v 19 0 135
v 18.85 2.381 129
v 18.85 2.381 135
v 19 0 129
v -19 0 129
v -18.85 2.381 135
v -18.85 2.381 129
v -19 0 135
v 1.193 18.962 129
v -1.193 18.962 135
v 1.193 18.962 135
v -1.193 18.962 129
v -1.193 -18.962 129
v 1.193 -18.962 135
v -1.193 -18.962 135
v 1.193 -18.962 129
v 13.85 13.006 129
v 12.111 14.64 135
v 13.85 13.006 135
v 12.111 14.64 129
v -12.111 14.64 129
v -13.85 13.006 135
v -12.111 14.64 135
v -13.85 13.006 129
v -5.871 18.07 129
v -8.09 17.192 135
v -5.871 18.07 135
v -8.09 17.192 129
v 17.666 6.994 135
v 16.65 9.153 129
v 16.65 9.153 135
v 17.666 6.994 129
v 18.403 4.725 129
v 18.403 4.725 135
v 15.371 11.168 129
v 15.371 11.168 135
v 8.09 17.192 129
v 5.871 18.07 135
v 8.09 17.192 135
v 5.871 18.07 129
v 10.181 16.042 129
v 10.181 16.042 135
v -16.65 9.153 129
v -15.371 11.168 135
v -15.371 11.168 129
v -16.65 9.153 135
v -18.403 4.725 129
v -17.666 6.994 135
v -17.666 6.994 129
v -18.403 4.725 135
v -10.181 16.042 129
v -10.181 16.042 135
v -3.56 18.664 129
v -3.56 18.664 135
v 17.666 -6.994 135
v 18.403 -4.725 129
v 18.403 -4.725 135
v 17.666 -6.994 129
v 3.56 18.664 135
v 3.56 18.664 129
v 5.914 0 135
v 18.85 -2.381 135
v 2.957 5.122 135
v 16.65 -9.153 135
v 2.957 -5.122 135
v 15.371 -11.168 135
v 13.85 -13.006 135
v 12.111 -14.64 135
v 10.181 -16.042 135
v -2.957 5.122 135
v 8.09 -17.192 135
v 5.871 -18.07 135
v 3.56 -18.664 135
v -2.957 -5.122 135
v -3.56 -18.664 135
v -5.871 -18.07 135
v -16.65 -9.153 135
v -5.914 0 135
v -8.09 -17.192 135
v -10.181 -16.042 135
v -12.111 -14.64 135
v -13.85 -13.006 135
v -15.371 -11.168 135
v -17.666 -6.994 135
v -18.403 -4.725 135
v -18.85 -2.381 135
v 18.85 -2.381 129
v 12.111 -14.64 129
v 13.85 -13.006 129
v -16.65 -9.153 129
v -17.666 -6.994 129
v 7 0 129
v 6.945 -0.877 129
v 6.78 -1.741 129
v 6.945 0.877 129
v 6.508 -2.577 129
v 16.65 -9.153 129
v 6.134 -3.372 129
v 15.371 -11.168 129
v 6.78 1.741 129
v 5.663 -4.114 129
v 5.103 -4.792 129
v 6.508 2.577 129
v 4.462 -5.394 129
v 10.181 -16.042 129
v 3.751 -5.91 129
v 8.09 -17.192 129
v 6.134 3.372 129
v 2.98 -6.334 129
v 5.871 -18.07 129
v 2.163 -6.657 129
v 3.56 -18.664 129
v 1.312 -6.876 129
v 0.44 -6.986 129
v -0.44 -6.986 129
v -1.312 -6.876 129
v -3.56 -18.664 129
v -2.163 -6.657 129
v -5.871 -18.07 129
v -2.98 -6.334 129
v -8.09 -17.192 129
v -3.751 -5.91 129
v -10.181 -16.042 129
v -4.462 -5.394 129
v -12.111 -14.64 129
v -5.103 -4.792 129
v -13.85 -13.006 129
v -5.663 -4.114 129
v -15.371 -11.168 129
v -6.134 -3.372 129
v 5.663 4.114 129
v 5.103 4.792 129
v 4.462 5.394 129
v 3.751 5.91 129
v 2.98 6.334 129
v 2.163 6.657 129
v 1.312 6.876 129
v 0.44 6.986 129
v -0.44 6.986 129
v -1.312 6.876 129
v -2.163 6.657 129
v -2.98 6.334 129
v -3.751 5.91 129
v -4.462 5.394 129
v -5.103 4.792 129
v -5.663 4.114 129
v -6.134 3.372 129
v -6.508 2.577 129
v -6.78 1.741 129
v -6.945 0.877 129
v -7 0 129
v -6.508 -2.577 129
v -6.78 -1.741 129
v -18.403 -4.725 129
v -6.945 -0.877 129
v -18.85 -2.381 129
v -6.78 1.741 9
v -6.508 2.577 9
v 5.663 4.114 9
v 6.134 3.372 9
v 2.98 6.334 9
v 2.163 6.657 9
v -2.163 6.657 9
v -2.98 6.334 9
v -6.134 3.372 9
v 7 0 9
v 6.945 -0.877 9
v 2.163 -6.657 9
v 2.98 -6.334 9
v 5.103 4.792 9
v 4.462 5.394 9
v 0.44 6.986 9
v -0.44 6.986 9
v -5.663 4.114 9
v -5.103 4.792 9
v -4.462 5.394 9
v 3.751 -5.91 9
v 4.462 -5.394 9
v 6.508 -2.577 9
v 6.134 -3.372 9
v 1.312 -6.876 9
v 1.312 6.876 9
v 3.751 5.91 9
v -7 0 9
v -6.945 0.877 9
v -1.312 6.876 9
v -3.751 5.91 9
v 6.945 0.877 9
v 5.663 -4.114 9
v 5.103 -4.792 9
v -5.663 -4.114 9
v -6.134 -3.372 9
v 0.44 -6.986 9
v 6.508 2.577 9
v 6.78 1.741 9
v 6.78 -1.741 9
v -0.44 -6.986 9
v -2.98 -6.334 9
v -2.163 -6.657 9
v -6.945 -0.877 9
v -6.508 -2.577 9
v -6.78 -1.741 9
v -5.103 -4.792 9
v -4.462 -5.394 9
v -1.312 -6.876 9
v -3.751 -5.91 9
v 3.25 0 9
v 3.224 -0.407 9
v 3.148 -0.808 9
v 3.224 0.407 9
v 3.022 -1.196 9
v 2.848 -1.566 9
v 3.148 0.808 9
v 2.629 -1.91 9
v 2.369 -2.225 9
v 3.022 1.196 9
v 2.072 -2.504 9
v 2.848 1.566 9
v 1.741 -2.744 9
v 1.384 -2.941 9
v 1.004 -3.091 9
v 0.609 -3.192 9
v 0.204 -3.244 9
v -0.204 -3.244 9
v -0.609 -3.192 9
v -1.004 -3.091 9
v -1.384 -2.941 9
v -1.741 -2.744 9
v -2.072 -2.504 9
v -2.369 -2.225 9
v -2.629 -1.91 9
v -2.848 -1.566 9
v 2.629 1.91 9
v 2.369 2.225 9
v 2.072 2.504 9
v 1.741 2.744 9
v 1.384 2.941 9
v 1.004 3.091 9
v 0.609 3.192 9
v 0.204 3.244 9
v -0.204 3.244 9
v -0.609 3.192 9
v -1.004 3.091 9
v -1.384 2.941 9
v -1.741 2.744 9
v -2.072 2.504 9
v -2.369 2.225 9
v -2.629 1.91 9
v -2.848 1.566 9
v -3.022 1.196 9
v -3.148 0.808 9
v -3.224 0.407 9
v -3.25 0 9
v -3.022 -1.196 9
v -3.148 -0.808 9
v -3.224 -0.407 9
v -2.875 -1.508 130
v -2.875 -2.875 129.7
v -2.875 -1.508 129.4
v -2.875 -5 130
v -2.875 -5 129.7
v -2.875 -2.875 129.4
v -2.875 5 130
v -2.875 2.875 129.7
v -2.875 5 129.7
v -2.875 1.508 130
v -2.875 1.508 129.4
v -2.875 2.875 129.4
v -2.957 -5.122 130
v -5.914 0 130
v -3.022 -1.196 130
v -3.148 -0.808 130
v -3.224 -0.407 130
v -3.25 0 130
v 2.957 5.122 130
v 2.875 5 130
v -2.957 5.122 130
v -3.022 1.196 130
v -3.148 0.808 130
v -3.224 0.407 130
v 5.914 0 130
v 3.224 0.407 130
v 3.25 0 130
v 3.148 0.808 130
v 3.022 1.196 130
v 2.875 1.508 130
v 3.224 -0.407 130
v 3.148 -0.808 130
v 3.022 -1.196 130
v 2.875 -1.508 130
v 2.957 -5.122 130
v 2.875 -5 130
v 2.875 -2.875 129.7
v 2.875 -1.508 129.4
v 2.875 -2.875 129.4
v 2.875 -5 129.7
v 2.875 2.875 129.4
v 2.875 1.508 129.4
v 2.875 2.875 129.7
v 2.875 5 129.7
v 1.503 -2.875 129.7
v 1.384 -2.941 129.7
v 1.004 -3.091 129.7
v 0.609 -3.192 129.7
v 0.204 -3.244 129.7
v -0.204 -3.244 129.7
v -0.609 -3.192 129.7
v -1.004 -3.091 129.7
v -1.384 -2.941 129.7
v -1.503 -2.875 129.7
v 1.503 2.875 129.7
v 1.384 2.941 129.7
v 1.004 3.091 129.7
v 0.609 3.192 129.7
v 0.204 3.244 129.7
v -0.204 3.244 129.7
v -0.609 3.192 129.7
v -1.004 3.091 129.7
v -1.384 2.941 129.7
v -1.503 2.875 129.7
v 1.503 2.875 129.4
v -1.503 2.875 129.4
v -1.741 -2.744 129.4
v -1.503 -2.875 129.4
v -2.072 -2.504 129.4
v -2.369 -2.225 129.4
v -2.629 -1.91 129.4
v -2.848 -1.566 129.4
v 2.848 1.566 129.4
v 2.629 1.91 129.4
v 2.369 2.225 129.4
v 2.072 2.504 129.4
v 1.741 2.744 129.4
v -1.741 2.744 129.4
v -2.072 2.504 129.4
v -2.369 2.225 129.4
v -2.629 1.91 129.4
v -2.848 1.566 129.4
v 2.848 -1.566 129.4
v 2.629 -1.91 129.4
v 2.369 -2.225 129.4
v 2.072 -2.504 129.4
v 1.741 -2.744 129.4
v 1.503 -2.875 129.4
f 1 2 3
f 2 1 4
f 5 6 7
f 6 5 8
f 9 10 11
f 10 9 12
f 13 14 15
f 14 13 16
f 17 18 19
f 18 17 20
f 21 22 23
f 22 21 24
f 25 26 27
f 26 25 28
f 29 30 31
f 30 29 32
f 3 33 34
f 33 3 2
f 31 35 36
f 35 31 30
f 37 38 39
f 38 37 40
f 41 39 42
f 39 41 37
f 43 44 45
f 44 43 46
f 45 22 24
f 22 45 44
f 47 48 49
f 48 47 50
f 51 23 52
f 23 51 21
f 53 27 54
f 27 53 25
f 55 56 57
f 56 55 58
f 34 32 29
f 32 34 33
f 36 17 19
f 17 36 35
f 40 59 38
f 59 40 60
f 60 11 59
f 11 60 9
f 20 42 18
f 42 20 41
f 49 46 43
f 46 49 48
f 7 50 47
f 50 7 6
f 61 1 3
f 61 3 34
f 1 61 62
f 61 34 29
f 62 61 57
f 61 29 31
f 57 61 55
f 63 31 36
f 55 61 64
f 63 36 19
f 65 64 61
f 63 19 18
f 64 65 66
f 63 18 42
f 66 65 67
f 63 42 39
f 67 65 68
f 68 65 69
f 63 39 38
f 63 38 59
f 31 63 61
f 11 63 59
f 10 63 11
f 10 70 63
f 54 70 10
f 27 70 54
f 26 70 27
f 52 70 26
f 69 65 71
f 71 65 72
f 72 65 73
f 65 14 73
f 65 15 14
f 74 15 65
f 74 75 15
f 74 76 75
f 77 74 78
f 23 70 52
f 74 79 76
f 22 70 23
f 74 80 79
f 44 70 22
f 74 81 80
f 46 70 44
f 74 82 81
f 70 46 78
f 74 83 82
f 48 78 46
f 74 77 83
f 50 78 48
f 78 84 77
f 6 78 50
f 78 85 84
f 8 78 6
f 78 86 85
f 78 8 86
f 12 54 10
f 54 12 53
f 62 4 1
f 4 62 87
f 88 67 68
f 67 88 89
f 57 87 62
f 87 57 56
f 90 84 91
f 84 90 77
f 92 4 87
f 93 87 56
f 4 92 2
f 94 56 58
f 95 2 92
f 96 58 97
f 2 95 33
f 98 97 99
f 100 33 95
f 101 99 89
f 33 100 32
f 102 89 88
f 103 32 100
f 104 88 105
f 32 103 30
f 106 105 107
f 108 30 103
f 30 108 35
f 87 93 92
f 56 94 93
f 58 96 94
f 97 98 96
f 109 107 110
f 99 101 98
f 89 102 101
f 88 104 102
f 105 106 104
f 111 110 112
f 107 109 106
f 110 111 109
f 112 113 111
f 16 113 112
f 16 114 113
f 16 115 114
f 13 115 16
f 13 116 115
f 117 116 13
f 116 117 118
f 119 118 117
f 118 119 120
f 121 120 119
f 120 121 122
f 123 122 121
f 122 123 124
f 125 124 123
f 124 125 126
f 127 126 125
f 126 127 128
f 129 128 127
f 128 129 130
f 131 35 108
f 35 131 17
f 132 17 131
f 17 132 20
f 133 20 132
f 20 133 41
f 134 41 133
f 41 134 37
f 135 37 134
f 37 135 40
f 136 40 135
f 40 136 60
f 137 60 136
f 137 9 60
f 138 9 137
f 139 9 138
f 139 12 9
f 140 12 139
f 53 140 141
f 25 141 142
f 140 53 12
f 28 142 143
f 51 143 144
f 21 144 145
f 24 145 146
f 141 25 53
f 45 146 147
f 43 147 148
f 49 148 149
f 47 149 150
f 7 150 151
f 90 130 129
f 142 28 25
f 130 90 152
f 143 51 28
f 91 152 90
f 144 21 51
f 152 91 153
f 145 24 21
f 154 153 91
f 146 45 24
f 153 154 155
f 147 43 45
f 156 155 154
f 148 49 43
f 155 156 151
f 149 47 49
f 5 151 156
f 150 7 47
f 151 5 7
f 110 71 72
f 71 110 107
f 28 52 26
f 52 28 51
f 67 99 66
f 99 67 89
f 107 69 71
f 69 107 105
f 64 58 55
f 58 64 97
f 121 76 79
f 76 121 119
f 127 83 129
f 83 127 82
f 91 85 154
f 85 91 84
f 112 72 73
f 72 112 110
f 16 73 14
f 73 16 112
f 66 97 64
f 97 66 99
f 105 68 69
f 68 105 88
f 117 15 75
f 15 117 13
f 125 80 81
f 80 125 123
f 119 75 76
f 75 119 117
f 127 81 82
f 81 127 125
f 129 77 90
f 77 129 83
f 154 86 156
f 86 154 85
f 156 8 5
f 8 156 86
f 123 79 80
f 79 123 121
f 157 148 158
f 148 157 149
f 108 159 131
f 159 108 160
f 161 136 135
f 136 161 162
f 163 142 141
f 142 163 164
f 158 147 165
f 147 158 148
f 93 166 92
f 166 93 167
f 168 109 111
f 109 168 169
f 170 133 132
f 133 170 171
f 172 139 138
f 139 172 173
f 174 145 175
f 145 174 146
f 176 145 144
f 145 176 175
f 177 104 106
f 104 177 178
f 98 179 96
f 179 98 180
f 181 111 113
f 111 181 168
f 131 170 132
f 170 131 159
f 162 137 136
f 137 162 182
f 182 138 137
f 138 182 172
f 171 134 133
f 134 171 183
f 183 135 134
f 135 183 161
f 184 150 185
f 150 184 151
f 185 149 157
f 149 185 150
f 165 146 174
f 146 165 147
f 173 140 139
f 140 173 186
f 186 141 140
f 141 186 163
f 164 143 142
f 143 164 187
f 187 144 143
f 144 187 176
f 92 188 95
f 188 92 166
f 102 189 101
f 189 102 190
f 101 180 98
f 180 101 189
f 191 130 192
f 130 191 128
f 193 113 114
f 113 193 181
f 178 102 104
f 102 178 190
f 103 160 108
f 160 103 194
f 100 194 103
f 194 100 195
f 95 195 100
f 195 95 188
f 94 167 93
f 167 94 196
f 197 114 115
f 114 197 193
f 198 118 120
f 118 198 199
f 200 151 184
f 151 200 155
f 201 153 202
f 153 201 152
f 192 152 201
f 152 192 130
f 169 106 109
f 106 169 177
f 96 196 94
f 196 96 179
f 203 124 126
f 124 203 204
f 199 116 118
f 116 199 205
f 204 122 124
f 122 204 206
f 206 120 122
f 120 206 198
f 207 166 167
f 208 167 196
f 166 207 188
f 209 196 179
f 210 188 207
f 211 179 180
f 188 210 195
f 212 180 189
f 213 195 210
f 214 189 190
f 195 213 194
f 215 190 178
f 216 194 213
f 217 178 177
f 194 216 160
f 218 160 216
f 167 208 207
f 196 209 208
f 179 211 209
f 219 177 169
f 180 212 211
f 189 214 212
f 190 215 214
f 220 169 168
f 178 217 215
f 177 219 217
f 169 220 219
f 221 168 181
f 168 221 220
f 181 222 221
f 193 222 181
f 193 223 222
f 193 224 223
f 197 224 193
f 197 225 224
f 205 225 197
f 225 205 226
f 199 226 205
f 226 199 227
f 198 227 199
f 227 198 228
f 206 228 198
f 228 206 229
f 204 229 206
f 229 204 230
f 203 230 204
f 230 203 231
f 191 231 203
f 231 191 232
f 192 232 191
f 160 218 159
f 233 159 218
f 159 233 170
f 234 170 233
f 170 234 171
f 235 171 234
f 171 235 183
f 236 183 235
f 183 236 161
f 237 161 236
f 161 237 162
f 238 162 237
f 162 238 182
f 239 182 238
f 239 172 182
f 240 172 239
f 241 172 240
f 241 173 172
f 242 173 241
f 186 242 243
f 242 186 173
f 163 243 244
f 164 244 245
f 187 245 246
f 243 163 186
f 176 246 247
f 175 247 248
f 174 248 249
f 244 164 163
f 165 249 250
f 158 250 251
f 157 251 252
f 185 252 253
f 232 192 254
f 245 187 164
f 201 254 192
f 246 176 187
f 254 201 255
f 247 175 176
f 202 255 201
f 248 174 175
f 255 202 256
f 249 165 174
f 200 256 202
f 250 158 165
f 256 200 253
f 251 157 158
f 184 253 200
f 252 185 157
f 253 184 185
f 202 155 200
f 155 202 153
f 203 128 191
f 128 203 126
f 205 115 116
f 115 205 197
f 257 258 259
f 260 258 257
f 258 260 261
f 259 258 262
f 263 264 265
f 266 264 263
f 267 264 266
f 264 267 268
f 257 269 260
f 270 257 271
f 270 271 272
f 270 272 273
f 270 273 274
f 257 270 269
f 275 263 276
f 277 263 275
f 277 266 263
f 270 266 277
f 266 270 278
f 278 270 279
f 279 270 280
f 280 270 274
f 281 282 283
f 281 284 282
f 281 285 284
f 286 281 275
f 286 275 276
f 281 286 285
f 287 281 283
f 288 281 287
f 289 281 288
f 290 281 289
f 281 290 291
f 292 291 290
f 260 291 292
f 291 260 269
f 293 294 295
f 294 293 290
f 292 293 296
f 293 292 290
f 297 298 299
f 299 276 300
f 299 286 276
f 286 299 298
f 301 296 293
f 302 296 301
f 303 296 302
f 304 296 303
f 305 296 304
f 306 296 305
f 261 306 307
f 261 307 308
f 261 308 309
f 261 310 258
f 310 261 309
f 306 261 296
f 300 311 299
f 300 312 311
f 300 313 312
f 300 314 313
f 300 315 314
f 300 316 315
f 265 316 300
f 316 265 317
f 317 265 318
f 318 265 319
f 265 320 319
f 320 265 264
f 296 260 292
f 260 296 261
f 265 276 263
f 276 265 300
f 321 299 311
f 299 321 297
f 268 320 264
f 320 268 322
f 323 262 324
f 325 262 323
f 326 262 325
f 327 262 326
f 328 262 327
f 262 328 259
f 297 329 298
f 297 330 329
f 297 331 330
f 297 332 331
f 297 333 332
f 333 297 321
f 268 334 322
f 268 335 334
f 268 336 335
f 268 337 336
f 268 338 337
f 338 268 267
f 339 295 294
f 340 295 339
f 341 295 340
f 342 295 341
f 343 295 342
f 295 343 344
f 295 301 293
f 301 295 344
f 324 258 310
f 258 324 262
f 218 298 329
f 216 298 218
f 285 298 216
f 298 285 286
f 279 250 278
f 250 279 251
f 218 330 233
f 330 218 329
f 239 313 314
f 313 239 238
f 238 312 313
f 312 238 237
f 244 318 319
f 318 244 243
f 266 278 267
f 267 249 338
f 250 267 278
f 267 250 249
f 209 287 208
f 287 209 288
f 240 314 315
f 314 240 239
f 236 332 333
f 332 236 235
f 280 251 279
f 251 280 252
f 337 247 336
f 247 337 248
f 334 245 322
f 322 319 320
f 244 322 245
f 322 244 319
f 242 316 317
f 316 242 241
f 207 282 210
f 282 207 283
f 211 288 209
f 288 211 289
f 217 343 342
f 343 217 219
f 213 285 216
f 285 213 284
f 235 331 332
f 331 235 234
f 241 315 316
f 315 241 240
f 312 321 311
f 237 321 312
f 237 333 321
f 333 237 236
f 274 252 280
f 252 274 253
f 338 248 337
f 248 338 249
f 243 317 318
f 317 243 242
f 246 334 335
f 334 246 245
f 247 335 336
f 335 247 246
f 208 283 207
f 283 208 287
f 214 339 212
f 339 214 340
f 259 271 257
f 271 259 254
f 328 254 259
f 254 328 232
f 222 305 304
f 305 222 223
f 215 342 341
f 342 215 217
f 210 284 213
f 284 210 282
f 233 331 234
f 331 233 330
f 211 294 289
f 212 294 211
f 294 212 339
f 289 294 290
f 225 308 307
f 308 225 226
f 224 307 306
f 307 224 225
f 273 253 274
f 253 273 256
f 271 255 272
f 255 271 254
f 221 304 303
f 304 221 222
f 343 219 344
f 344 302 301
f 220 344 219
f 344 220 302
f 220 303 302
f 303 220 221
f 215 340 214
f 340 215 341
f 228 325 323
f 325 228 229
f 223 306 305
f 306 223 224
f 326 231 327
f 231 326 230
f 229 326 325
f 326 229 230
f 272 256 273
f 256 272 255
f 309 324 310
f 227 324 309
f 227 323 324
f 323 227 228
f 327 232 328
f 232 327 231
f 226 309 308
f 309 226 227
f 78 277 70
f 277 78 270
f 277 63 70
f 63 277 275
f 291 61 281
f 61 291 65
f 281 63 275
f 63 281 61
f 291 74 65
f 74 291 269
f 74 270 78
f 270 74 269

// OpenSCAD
$fn = 50;


difference() {
	union() {
		translate(v = [0, 0, 129.0000000000]) {
			cylinder(h = 6, r = 19.0000000000);
		}
		translate(v = [0, 0, 9.0000000000]) {
			cylinder(h = 126, r = 7.0000000000);
		}
	}
	union() {
		translate(v = [0, 0, 135]) {
			rotate(a = [0, 0, 0]) {
				difference() {
					union() {
						#translate(v = [-2.8750000000, -5.0000000000, -5.3000000000]) {
							cube(size = [5.7500000000, 10, 0.3000000000]);
						}
						#translate(v = [-2.8750000000, -2.8750000000, -5.6000000000]) {
							cube(size = [5.7500000000, 5.7500000000, 0.3000000000]);
						}
						#translate(v = [-2.8750000000, -5.0000000000, 0]) {
							cube(size = [5.7500000000, 10, 0.3000000000]);
						}
						#translate(v = [-2.8750000000, -2.8750000000, 0.3000000000]) {
							cube(size = [5.7500000000, 5.7500000000, 0.3000000000]);
						}
						#translate(v = [0, 0, -100.0000000000]) {
							cylinder(h = 200, r = 3.2500000000);
						}
						translate(v = [0, 0, -5]) {
							#linear_extrude(height = 5) {
								polygon(points = [[5.9142500000, 0.0000000000], [2.9571250000, 5.1218907443], [-2.9571250000, 5.1218907443], [-5.9142500000, 0.0000000000], [-2.9571250000, -5.1218907443], [2.9571250000, -5.1218907443]]);
							}
						}
						#translate(v = [-2.8750000000, -5.0000000000, -5.3000000000]) {
							cube(size = [5.7500000000, 10, 0.3000000000]);
						}
						#translate(v = [-2.8750000000, -2.8750000000, -5.6000000000]) {
							cube(size = [5.7500000000, 5.7500000000, 0.3000000000]);
						}
						#translate(v = [-2.8750000000, -5.0000000000, 0]) {
							cube(size = [5.7500000000, 10, 0.3000000000]);
						}
						#translate(v = [-2.8750000000, -2.8750000000, 0.3000000000]) {
							cube(size = [5.7500000000, 5.7500000000, 0.3000000000]);
						}
						#translate(v = [0, 0, -100.0000000000]) {
							cylinder(h = 200, r = 3.2500000000);
						}
						#translate(v = [-2.8750000000, -5.0000000000, -5.3000000000]) {
							cube(size = [5.7500000000, 10, 0.3000000000]);
						}
						#translate(v = [-2.8750000000, -2.8750000000, -5.6000000000]) {
							cube(size = [5.7500000000, 5.7500000000, 0.3000000000]);
						}
						#translate(v = [-2.8750000000, -5.0000000000, 0]) {
							cube(size = [5.7500000000, 10, 0.3000000000]);
						}
						#translate(v = [-2.8750000000, -2.8750000000, 0.3000000000]) {
							cube(size = [5.7500000000, 5.7500000000, 0.3000000000]);
						}
						#translate(v = [0, 0, -100.0000000000]) {
							cylinder(h = 200, r = 3.2500000000);
						}
					}
					union();
				}
			}
		}
		#translate(v = [0, 0, -100.0000000000]) {
			cylinder(h = 200, r = 3.2500000000);
		}
	}
}
